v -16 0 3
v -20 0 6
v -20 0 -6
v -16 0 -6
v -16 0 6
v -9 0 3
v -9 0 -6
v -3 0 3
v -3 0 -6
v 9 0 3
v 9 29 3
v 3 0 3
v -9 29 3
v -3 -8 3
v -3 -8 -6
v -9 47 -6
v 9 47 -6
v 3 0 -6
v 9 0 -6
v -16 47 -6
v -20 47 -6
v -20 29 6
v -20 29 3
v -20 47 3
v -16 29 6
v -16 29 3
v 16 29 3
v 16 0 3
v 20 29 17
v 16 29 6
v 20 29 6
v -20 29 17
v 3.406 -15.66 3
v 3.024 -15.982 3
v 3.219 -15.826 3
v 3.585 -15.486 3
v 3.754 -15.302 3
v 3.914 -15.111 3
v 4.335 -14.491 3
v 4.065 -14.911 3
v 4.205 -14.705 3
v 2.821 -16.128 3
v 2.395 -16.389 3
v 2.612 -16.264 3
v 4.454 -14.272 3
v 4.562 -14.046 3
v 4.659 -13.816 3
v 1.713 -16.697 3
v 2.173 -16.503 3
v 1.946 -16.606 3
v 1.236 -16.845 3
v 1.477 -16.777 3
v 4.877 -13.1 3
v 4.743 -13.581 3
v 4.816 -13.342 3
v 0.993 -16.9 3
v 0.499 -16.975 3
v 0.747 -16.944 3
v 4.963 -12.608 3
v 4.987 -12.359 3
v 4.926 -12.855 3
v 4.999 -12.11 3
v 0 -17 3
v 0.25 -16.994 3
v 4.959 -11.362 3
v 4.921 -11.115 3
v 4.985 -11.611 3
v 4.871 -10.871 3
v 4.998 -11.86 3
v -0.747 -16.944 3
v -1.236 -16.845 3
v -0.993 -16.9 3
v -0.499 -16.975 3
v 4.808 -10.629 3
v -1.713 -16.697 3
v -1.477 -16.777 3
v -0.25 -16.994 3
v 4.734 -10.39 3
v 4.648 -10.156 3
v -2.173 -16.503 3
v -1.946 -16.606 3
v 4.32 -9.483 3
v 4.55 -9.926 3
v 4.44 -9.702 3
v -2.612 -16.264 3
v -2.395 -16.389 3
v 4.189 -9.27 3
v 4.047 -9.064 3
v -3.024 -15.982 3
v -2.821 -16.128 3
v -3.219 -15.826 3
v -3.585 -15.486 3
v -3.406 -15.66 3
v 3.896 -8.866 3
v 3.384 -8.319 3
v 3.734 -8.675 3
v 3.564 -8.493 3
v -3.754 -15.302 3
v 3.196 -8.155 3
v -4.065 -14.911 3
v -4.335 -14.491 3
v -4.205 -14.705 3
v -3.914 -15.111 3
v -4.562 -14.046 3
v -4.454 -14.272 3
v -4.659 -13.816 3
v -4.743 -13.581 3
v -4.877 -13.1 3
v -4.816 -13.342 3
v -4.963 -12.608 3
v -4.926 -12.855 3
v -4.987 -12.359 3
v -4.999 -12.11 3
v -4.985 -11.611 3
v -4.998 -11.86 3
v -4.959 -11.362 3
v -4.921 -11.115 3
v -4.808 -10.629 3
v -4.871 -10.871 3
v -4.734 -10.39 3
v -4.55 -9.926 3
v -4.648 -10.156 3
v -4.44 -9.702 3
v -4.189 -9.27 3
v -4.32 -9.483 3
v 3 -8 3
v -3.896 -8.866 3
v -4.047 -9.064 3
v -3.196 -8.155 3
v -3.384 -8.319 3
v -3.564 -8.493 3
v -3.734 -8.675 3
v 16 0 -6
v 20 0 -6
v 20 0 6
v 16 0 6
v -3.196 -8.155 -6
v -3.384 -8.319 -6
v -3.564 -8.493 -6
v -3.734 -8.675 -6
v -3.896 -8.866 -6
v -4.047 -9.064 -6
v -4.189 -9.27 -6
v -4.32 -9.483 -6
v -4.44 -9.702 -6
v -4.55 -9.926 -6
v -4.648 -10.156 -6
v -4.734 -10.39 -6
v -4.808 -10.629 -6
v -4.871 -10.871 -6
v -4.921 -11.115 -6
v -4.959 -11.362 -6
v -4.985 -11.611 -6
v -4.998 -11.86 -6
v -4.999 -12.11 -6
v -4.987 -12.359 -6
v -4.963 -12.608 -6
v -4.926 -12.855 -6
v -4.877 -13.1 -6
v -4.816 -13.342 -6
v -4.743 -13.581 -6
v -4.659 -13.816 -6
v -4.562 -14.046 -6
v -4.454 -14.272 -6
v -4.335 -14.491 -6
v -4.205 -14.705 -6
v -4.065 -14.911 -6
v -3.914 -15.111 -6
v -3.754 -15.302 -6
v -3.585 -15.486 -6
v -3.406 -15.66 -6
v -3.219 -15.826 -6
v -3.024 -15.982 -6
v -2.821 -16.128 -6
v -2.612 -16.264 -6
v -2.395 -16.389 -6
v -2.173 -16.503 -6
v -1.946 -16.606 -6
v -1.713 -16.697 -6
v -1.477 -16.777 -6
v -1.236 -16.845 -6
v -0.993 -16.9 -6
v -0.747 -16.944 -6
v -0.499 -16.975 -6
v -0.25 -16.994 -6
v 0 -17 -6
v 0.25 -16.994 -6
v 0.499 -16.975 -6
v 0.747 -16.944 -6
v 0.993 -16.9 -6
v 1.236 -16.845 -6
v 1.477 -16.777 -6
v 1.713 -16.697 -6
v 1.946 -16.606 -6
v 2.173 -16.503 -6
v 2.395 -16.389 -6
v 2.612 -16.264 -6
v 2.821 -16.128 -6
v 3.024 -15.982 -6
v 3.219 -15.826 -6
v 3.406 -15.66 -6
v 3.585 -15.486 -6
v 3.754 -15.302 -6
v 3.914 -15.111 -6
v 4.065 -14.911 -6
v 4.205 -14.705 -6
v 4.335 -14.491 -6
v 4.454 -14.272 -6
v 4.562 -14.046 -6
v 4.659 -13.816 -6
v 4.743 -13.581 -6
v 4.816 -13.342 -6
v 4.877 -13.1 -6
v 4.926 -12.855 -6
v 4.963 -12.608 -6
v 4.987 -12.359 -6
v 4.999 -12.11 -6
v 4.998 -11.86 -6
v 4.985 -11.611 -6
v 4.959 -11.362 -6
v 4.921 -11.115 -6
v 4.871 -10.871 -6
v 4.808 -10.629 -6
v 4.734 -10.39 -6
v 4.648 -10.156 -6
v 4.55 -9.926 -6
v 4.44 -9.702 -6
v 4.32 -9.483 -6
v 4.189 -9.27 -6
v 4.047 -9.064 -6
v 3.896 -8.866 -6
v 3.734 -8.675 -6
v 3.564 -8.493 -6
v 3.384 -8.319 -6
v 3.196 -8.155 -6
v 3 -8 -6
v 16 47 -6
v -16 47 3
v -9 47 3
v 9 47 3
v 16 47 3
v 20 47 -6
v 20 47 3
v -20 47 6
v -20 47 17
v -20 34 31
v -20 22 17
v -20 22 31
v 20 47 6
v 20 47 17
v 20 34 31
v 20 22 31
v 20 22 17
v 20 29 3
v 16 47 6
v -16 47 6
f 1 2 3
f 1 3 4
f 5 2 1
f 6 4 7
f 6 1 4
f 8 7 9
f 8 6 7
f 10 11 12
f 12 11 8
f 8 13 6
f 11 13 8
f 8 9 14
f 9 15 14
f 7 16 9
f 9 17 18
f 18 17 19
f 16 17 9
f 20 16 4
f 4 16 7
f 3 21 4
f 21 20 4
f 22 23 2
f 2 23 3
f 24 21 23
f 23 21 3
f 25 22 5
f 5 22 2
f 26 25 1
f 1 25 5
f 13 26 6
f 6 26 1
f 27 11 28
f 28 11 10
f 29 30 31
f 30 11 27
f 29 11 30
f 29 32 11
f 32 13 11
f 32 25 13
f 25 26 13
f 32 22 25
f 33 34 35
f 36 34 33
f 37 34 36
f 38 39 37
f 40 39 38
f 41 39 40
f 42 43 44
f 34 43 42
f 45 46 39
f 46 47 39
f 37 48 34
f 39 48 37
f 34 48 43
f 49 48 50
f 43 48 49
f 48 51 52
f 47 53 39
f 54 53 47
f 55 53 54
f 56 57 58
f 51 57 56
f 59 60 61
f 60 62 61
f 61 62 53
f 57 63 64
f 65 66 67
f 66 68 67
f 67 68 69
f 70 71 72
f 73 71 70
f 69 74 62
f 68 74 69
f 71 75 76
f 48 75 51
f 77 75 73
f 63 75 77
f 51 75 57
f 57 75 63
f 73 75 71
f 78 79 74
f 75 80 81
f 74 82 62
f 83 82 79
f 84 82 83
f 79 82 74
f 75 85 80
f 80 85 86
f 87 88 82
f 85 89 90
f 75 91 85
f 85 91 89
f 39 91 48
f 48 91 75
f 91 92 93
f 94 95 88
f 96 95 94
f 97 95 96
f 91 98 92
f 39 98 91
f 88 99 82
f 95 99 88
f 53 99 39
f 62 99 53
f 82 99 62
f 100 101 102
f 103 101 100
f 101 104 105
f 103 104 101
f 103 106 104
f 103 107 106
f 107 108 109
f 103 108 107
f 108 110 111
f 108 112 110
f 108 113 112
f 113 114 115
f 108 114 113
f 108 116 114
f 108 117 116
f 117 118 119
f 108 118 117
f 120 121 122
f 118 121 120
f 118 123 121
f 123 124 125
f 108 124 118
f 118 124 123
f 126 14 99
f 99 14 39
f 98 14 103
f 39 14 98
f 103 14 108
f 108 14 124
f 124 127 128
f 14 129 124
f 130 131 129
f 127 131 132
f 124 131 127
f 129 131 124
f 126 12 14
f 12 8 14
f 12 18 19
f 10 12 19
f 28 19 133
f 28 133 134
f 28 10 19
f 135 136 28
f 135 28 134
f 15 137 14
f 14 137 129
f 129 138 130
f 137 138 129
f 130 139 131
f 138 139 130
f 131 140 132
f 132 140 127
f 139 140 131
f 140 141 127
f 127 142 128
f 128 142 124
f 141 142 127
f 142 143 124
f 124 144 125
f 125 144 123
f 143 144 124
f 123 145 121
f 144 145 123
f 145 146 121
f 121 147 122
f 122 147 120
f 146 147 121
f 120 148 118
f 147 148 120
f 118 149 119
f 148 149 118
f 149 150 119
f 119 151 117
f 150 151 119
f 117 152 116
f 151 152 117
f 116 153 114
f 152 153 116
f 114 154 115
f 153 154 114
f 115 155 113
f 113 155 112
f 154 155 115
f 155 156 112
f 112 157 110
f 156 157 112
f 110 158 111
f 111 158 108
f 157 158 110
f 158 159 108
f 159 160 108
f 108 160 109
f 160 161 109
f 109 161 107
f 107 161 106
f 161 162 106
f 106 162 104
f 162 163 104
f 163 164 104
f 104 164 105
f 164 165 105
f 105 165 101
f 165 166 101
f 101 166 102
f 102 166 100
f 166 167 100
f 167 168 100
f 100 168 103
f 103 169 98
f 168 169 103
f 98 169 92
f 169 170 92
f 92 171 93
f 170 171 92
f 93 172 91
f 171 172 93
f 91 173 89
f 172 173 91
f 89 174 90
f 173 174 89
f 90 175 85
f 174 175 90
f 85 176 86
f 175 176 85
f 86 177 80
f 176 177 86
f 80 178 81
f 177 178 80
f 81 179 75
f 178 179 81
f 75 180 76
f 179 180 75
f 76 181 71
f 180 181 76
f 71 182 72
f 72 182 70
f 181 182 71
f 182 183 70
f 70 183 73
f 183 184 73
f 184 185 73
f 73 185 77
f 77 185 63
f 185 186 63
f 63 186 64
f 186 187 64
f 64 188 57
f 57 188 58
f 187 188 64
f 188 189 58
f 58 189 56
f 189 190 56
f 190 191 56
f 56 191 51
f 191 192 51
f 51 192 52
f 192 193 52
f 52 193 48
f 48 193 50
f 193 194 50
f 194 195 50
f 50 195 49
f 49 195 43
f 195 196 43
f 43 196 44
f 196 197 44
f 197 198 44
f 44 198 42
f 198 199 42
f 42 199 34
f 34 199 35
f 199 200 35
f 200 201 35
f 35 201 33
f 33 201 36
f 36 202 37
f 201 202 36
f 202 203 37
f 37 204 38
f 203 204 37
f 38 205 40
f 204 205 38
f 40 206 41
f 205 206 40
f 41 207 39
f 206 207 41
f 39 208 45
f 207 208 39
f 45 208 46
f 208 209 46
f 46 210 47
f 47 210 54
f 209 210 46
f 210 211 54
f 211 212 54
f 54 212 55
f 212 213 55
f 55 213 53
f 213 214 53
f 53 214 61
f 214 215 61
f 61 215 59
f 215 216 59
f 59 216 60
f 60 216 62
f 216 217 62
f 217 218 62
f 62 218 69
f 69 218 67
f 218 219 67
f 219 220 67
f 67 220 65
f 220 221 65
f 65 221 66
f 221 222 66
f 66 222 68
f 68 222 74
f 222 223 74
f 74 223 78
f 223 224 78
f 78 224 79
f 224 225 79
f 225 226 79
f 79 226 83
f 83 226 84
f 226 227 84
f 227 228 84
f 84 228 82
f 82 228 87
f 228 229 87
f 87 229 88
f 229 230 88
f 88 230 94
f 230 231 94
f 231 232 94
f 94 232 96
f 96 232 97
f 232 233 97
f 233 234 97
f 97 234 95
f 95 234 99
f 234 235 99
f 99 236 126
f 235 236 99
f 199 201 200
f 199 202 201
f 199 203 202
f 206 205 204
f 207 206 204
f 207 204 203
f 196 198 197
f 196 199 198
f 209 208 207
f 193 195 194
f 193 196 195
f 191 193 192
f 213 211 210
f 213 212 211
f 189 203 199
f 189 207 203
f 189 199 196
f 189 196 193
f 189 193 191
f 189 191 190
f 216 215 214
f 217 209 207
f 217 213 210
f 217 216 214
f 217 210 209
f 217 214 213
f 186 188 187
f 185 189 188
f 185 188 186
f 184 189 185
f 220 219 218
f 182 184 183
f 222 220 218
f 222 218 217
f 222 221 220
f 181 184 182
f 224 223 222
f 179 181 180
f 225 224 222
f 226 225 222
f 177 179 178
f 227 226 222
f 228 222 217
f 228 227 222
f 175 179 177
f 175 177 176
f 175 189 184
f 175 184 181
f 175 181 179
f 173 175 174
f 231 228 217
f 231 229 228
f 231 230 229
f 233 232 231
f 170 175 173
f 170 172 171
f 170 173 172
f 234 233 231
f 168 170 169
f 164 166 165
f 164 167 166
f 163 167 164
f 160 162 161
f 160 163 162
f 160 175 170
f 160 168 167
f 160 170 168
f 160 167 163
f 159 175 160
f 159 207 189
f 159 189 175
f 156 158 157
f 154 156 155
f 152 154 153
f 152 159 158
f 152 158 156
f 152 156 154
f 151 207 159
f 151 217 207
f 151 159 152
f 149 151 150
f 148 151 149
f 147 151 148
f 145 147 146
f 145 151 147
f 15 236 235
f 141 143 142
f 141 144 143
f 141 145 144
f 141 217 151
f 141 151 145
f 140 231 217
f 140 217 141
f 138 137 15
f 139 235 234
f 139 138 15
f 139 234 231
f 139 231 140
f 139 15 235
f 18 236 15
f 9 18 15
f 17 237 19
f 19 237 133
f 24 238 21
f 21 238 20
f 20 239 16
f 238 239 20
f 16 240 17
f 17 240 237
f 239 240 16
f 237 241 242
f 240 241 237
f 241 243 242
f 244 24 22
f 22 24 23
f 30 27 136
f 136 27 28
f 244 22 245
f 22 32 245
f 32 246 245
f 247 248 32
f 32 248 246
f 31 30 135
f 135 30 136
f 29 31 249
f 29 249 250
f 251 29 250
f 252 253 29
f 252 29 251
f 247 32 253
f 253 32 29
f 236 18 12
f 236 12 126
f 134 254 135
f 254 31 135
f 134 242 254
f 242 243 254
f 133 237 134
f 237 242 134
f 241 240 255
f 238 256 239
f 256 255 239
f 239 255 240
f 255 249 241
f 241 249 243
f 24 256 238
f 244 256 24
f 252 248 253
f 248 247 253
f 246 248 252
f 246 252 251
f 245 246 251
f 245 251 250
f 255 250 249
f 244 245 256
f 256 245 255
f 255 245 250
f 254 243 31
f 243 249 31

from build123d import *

# Parameters (mm, degrees)
PAD_DEPTH         = 20
PAD001_DEPTH      = 3
PAD001_DEPTH_BACK = 6


with BuildPart() as part:
    # AdditivePipe: sweep along a path in Sketch
    with BuildLine(Plane.XY) as additivepipe_path:
        Line((0, 0), (0, 47))
    # Sketch001 → AdditivePipe (sweep)
    with BuildSketch(Plane.XZ):
        Polygon((-20, 6), (-20, -6), (-16, -6), (-9, -6), (9, -6), (16, -6), (20, -6), (20, 6), (16, 6), (16, 3), (9, 3), (-9, 3), (-16, 3), (-16, 6), align=None)
    sweep(path=additivepipe_path.line)

    # Sketch002 → Pad (new body, symmetric)
    with BuildSketch(Plane.YZ):
        Polygon((47, 6), (47, 17), (34, 31), (22, 31), (22, 17), (29, 17), (29, 3), (47, 3), align=None)
    extrude(amount=PAD_DEPTH, both=True)

    # Sketch003 → Pad001 (join, two sides)
    with BuildSketch(Plane.XY) as pad001_sk:
        with BuildLine():
            Line((-3, 0), (3, 0))
            Line((3, 0), (3, -8))
            ThreePointArc((-3, -8), (0, -17), (3, -8))
            Line((-3, 0), (-3, -8))
        make_face()
    extrude(amount=PAD001_DEPTH)
    extrude(pad001_sk.sketch, amount=-PAD001_DEPTH_BACK)


solid = part.part
